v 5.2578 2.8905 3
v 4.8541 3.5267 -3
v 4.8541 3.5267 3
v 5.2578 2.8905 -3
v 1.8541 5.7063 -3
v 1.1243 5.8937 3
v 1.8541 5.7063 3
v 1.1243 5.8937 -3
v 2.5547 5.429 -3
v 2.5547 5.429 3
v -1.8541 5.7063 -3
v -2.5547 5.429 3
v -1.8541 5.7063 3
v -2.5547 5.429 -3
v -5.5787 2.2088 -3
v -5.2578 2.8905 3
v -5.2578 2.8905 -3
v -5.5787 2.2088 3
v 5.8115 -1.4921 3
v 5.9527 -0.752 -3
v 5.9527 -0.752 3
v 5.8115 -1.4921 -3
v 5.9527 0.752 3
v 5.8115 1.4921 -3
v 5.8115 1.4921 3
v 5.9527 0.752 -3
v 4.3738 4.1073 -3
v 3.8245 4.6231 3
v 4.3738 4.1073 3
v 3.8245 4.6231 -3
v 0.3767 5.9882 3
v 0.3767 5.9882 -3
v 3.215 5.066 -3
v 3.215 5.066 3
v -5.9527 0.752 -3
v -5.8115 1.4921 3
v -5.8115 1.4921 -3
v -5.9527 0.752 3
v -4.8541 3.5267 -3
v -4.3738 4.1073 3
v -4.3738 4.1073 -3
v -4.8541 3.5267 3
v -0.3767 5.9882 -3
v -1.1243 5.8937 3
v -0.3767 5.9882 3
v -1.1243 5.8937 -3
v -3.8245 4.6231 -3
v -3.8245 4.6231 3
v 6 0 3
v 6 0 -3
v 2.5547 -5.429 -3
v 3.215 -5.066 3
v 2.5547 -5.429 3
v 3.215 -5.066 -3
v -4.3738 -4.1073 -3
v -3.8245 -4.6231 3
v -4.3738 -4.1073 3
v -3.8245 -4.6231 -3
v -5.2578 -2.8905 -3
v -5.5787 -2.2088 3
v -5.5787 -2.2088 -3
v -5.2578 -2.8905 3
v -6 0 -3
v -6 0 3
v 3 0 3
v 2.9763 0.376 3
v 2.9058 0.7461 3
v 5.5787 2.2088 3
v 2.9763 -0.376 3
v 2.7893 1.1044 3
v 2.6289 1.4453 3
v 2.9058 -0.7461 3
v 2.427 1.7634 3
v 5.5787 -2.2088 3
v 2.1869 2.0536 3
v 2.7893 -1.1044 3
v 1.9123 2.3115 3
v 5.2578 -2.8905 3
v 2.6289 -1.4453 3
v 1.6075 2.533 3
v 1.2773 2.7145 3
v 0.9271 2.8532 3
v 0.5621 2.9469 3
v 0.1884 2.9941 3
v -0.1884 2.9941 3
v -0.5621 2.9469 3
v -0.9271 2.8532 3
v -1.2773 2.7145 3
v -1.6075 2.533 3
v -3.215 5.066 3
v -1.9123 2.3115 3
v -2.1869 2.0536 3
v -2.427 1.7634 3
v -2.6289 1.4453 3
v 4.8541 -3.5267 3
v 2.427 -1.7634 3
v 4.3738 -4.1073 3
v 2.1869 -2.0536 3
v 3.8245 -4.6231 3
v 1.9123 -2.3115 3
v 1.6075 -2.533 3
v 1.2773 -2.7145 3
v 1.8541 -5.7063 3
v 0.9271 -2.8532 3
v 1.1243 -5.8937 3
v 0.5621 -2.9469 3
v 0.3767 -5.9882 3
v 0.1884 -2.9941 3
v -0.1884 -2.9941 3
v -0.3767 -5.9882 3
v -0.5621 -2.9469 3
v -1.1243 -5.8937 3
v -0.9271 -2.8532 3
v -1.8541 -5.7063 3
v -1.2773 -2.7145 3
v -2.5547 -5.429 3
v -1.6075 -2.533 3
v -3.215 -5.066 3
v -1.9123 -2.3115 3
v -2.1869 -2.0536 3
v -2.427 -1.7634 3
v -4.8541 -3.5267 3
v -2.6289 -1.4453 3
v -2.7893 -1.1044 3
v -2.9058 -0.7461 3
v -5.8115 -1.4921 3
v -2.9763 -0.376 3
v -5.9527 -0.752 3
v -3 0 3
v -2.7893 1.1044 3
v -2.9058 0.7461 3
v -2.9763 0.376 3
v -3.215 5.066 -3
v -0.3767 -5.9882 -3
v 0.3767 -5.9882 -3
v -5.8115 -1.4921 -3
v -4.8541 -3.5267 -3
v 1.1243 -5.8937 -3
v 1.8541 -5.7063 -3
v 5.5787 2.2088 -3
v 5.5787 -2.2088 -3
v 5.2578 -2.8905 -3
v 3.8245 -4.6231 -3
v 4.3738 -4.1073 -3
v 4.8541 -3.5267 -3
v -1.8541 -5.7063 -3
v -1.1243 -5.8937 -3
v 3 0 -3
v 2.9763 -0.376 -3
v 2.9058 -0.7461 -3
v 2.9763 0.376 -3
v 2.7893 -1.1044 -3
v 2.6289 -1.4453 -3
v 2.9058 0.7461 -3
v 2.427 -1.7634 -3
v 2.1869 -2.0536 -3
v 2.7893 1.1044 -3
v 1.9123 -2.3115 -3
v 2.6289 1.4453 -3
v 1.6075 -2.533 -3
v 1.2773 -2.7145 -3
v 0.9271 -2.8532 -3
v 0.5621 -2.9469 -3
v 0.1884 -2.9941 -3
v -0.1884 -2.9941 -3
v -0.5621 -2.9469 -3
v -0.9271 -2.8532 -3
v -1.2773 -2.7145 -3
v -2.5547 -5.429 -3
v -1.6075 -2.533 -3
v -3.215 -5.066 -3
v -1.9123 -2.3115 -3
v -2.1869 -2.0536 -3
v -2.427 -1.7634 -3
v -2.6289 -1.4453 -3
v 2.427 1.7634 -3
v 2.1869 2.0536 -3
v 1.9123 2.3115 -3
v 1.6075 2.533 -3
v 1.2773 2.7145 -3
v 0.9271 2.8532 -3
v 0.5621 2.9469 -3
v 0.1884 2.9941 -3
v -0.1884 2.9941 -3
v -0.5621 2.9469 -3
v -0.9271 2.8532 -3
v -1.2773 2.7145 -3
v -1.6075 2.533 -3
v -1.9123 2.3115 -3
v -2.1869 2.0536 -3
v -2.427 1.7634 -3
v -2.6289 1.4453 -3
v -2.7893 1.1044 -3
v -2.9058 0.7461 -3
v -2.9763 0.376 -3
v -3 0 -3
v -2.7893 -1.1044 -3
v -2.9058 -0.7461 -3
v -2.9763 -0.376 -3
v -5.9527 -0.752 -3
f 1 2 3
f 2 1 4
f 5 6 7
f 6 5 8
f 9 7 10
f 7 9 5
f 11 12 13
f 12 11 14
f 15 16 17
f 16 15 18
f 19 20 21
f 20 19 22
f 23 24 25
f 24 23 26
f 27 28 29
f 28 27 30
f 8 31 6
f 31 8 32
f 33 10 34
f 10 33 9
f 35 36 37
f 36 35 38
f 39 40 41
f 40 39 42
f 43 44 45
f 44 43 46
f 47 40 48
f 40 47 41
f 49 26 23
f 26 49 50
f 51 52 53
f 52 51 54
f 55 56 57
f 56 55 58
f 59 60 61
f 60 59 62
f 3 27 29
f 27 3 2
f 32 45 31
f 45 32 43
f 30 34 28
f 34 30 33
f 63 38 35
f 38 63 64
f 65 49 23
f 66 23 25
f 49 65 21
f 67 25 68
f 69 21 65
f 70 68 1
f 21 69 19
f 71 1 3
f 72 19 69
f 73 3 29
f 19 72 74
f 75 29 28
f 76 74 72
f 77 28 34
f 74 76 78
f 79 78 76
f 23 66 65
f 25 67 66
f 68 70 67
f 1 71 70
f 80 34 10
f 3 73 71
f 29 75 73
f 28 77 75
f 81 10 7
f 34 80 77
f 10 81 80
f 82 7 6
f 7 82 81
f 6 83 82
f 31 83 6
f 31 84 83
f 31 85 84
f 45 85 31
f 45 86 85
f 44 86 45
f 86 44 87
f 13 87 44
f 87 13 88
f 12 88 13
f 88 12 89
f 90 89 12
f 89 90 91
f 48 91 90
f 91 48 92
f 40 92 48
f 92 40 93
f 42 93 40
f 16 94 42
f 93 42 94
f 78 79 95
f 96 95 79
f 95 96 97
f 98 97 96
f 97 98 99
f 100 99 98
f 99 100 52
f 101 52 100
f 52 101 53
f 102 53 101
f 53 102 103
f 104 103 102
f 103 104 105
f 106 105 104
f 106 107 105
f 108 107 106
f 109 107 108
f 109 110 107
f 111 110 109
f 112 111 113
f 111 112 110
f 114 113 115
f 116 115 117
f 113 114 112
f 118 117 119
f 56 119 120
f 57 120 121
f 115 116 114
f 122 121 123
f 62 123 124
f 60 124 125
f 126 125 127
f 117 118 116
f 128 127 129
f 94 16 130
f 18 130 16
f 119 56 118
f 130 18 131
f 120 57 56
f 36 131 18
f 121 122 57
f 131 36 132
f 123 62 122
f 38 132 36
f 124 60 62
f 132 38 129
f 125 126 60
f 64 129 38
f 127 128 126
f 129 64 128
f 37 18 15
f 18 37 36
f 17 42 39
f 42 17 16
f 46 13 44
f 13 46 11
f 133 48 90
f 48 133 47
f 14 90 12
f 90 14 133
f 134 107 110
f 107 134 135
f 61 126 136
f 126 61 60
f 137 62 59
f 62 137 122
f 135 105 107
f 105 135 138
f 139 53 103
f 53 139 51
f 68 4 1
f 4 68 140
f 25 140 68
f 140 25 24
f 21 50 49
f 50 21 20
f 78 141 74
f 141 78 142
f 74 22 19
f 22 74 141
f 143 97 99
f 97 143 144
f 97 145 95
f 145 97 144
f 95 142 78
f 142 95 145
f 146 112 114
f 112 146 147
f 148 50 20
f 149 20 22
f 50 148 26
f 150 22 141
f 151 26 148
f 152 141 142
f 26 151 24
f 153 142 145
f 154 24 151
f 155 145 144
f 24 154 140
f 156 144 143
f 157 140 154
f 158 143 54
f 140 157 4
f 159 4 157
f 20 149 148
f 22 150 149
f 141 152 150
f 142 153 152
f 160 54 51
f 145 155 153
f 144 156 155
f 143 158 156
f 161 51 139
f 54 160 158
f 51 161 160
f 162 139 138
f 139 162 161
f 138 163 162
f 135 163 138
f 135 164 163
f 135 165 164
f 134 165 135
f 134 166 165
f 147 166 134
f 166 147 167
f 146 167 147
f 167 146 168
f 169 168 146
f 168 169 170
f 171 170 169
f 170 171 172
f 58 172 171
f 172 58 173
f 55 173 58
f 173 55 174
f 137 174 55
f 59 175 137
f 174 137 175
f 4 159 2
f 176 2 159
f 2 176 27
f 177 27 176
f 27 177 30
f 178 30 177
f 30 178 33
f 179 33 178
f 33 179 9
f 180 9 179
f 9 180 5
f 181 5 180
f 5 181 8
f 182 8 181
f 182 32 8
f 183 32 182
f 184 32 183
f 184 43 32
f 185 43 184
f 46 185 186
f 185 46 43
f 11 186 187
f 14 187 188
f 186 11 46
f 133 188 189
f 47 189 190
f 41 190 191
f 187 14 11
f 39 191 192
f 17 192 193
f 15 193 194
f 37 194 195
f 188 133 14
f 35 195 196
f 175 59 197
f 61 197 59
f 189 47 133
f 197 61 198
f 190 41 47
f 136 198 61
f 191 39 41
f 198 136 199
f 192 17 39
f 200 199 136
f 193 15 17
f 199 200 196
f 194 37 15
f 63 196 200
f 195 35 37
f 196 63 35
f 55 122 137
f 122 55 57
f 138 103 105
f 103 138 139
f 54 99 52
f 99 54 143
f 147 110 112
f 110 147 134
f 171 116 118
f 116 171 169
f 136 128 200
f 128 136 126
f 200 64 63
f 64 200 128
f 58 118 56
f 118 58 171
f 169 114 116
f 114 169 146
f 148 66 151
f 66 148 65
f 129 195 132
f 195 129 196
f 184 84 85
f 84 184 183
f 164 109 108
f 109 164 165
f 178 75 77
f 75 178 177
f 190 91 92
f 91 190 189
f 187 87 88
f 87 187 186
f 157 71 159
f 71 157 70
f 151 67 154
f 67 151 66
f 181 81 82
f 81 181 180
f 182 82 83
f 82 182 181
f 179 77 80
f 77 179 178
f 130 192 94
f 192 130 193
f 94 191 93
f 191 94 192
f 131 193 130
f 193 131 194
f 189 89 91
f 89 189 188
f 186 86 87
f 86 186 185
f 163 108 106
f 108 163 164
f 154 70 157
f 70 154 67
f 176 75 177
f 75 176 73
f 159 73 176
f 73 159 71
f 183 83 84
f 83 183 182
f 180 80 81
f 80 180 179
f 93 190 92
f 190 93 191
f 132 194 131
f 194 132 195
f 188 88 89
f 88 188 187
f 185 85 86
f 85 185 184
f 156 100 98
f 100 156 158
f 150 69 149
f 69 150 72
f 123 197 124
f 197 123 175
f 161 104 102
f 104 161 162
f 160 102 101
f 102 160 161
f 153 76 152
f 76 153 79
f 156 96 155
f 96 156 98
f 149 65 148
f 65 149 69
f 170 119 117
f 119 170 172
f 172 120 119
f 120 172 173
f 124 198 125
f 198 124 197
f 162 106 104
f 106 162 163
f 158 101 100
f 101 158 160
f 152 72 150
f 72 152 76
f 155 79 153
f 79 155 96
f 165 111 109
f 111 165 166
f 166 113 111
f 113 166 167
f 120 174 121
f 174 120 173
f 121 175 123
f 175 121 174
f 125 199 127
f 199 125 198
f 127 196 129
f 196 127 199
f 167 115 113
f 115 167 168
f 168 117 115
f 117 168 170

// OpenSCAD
$fn = 50;


difference() {
	union() {
		translate(v = [0, 0, -3.0000000000]) {
			cylinder(h = 6, r = 6.0000000000);
		}
	}
	union() {
		translate(v = [0, 0, -100.0000000000]) {
			cylinder(h = 200, r = 3);
		}
	}
}
